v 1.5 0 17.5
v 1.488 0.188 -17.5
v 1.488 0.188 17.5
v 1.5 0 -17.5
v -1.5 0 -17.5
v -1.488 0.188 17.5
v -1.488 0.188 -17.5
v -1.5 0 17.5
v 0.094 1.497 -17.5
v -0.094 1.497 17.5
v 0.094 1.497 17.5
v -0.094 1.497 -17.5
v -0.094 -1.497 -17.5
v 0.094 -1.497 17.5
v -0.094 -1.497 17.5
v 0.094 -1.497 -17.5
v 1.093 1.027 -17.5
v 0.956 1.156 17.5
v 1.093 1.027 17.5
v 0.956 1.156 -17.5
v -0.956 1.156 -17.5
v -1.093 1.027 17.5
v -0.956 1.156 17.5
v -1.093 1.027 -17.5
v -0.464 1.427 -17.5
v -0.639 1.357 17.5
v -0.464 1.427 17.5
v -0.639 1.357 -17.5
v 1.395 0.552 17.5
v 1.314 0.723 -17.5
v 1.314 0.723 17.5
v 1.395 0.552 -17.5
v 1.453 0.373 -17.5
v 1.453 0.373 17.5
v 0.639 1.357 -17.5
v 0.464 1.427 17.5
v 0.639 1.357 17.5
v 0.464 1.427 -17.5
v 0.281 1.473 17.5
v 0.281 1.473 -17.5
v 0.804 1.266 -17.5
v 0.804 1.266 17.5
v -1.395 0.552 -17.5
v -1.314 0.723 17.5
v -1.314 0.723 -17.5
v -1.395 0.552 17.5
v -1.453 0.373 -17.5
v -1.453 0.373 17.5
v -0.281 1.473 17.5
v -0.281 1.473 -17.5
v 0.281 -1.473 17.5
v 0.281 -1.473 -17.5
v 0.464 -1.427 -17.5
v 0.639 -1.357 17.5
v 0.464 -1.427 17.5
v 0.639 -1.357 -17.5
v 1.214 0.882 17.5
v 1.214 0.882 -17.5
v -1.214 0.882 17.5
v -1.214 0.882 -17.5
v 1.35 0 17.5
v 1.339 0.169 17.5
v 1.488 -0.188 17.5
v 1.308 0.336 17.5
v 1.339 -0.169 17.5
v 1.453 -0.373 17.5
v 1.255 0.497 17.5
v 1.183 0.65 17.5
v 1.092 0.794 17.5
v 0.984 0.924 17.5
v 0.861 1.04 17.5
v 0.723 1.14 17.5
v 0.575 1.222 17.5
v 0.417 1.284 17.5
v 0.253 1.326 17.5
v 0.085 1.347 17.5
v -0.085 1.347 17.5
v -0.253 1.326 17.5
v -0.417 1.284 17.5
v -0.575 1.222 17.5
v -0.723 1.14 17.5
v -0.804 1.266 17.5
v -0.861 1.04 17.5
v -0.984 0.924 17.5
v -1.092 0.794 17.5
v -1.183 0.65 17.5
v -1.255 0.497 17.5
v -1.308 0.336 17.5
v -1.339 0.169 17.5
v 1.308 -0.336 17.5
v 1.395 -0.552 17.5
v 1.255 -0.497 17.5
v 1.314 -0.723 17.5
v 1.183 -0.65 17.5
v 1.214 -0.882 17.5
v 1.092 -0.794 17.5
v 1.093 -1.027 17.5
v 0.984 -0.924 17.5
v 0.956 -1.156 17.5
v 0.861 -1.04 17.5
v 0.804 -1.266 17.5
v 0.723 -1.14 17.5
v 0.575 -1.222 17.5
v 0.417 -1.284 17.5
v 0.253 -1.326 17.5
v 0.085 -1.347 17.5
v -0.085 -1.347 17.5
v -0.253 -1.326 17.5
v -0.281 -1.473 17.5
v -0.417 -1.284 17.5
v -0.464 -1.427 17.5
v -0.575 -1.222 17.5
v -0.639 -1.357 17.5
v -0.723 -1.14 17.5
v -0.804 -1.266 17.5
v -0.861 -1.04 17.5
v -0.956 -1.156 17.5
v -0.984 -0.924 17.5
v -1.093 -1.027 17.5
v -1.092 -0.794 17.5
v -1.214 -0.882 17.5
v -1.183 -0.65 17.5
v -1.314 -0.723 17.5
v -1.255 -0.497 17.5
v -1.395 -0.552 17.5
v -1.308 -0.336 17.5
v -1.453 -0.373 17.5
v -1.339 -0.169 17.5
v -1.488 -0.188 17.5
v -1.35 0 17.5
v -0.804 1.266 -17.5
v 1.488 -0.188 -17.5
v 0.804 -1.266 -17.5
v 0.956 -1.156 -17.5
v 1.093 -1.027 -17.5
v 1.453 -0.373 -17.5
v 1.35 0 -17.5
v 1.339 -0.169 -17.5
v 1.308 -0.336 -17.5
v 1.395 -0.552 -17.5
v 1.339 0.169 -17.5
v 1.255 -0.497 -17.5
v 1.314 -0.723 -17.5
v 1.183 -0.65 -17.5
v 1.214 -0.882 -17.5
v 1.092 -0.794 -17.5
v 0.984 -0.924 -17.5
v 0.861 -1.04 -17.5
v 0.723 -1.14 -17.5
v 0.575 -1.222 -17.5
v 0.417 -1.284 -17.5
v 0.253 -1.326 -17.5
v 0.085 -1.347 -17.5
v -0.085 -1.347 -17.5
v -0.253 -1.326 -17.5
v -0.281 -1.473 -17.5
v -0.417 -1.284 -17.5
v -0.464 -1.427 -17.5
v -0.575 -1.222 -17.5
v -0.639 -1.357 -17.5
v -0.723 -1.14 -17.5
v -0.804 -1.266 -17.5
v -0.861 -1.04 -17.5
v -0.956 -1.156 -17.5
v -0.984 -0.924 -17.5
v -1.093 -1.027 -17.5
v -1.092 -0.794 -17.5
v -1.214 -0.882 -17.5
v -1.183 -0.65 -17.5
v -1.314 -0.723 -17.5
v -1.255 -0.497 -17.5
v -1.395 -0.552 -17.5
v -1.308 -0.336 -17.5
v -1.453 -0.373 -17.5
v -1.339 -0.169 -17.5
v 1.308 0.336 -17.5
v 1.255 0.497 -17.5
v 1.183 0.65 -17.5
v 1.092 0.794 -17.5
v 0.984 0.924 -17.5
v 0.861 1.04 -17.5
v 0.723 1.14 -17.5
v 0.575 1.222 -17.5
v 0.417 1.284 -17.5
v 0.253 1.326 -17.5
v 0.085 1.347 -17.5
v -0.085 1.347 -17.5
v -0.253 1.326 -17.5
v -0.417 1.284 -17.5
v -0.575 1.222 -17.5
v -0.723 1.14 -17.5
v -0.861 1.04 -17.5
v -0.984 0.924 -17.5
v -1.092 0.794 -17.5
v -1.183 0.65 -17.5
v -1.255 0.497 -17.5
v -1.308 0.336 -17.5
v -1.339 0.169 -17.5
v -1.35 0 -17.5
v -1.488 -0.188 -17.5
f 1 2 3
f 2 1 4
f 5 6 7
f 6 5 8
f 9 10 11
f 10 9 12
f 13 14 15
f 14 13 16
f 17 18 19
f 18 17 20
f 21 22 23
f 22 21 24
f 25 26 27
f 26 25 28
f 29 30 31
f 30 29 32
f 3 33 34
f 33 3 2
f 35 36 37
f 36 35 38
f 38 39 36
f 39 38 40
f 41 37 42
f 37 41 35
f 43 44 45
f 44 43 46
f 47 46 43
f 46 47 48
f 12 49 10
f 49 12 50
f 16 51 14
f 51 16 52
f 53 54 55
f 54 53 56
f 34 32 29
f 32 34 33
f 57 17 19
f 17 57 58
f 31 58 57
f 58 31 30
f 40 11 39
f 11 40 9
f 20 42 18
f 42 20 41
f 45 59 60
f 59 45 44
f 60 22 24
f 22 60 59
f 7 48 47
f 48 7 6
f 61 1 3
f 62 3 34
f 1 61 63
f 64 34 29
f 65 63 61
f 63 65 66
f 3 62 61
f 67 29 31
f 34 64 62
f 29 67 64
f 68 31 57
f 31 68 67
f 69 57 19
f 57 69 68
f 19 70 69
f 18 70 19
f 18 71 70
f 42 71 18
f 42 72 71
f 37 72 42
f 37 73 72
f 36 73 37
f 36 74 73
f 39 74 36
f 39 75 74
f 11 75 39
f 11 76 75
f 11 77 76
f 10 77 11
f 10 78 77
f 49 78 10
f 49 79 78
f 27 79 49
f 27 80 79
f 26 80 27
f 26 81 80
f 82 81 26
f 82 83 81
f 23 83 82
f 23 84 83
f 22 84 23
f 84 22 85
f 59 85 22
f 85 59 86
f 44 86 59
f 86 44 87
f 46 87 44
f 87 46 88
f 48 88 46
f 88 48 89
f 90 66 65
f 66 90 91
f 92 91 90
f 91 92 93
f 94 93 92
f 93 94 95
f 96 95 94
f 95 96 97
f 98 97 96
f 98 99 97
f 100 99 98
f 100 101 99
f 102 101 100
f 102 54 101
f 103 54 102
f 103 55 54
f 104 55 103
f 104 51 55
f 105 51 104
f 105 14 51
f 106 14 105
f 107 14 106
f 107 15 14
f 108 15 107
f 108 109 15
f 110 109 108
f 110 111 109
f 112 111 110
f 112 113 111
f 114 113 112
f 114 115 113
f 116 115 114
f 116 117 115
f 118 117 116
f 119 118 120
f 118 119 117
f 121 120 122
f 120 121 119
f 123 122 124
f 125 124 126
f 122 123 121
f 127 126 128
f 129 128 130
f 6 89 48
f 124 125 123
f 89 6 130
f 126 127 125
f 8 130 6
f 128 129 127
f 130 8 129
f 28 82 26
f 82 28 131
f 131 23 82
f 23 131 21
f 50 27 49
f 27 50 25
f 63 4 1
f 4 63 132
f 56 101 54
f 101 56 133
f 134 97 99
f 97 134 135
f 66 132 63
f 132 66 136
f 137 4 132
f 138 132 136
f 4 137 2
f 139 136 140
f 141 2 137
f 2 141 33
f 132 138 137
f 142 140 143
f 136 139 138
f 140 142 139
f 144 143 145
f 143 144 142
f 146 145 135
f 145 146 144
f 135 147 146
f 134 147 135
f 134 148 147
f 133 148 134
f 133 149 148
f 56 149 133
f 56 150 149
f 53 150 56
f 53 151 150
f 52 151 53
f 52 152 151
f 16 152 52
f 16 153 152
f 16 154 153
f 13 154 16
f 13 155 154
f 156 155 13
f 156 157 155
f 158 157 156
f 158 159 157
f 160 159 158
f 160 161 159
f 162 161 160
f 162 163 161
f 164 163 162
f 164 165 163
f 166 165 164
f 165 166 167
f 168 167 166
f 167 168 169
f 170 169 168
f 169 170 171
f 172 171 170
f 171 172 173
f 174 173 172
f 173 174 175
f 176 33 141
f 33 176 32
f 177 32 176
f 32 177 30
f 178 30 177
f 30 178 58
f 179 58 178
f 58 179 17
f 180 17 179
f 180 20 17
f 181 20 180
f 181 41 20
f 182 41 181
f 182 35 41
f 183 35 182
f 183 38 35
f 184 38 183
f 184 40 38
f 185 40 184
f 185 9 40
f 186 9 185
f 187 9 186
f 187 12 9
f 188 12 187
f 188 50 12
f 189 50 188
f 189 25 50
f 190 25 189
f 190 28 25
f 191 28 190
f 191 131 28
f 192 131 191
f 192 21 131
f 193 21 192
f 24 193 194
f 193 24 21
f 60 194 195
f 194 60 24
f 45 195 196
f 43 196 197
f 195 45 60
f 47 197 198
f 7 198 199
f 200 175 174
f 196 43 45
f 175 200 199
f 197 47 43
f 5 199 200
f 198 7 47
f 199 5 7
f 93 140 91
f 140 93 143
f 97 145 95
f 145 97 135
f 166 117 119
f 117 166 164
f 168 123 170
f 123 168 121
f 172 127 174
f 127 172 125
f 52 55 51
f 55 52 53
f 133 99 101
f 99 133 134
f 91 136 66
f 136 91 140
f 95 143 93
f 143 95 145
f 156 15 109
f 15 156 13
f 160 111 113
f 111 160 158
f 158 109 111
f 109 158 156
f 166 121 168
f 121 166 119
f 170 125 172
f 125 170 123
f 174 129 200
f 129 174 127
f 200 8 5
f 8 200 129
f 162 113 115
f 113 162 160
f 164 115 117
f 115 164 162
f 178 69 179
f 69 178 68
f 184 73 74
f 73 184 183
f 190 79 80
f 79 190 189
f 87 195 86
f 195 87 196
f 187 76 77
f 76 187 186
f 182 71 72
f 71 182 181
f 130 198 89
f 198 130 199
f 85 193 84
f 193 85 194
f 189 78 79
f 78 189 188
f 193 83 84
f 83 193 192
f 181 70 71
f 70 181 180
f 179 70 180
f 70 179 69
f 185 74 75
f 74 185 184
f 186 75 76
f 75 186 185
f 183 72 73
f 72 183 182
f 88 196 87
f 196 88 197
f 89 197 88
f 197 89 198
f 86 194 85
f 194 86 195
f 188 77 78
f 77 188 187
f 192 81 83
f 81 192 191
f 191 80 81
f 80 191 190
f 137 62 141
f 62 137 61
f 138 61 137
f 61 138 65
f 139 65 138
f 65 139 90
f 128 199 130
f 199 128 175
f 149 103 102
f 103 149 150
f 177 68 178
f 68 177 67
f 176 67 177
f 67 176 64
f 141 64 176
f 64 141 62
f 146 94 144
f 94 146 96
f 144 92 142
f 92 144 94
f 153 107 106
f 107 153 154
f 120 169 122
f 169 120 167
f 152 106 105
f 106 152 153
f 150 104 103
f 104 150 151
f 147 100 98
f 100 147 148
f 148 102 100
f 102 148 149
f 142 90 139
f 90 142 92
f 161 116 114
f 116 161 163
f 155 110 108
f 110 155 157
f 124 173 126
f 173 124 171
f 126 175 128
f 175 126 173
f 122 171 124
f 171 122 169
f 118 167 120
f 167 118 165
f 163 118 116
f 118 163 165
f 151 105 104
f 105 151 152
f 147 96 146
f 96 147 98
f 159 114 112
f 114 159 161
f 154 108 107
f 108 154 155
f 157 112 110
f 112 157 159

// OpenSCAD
$fn = 50;


difference() {
	union() {
		translate(v = [0, 0, -17.5000000000]) {
			cylinder(h = 35, r = 1.5000000000);
		}
	}
	union() {
		translate(v = [0, 0, -100.0000000000]) {
			cylinder(h = 200, r = 1.3500000000);
		}
	}
}
